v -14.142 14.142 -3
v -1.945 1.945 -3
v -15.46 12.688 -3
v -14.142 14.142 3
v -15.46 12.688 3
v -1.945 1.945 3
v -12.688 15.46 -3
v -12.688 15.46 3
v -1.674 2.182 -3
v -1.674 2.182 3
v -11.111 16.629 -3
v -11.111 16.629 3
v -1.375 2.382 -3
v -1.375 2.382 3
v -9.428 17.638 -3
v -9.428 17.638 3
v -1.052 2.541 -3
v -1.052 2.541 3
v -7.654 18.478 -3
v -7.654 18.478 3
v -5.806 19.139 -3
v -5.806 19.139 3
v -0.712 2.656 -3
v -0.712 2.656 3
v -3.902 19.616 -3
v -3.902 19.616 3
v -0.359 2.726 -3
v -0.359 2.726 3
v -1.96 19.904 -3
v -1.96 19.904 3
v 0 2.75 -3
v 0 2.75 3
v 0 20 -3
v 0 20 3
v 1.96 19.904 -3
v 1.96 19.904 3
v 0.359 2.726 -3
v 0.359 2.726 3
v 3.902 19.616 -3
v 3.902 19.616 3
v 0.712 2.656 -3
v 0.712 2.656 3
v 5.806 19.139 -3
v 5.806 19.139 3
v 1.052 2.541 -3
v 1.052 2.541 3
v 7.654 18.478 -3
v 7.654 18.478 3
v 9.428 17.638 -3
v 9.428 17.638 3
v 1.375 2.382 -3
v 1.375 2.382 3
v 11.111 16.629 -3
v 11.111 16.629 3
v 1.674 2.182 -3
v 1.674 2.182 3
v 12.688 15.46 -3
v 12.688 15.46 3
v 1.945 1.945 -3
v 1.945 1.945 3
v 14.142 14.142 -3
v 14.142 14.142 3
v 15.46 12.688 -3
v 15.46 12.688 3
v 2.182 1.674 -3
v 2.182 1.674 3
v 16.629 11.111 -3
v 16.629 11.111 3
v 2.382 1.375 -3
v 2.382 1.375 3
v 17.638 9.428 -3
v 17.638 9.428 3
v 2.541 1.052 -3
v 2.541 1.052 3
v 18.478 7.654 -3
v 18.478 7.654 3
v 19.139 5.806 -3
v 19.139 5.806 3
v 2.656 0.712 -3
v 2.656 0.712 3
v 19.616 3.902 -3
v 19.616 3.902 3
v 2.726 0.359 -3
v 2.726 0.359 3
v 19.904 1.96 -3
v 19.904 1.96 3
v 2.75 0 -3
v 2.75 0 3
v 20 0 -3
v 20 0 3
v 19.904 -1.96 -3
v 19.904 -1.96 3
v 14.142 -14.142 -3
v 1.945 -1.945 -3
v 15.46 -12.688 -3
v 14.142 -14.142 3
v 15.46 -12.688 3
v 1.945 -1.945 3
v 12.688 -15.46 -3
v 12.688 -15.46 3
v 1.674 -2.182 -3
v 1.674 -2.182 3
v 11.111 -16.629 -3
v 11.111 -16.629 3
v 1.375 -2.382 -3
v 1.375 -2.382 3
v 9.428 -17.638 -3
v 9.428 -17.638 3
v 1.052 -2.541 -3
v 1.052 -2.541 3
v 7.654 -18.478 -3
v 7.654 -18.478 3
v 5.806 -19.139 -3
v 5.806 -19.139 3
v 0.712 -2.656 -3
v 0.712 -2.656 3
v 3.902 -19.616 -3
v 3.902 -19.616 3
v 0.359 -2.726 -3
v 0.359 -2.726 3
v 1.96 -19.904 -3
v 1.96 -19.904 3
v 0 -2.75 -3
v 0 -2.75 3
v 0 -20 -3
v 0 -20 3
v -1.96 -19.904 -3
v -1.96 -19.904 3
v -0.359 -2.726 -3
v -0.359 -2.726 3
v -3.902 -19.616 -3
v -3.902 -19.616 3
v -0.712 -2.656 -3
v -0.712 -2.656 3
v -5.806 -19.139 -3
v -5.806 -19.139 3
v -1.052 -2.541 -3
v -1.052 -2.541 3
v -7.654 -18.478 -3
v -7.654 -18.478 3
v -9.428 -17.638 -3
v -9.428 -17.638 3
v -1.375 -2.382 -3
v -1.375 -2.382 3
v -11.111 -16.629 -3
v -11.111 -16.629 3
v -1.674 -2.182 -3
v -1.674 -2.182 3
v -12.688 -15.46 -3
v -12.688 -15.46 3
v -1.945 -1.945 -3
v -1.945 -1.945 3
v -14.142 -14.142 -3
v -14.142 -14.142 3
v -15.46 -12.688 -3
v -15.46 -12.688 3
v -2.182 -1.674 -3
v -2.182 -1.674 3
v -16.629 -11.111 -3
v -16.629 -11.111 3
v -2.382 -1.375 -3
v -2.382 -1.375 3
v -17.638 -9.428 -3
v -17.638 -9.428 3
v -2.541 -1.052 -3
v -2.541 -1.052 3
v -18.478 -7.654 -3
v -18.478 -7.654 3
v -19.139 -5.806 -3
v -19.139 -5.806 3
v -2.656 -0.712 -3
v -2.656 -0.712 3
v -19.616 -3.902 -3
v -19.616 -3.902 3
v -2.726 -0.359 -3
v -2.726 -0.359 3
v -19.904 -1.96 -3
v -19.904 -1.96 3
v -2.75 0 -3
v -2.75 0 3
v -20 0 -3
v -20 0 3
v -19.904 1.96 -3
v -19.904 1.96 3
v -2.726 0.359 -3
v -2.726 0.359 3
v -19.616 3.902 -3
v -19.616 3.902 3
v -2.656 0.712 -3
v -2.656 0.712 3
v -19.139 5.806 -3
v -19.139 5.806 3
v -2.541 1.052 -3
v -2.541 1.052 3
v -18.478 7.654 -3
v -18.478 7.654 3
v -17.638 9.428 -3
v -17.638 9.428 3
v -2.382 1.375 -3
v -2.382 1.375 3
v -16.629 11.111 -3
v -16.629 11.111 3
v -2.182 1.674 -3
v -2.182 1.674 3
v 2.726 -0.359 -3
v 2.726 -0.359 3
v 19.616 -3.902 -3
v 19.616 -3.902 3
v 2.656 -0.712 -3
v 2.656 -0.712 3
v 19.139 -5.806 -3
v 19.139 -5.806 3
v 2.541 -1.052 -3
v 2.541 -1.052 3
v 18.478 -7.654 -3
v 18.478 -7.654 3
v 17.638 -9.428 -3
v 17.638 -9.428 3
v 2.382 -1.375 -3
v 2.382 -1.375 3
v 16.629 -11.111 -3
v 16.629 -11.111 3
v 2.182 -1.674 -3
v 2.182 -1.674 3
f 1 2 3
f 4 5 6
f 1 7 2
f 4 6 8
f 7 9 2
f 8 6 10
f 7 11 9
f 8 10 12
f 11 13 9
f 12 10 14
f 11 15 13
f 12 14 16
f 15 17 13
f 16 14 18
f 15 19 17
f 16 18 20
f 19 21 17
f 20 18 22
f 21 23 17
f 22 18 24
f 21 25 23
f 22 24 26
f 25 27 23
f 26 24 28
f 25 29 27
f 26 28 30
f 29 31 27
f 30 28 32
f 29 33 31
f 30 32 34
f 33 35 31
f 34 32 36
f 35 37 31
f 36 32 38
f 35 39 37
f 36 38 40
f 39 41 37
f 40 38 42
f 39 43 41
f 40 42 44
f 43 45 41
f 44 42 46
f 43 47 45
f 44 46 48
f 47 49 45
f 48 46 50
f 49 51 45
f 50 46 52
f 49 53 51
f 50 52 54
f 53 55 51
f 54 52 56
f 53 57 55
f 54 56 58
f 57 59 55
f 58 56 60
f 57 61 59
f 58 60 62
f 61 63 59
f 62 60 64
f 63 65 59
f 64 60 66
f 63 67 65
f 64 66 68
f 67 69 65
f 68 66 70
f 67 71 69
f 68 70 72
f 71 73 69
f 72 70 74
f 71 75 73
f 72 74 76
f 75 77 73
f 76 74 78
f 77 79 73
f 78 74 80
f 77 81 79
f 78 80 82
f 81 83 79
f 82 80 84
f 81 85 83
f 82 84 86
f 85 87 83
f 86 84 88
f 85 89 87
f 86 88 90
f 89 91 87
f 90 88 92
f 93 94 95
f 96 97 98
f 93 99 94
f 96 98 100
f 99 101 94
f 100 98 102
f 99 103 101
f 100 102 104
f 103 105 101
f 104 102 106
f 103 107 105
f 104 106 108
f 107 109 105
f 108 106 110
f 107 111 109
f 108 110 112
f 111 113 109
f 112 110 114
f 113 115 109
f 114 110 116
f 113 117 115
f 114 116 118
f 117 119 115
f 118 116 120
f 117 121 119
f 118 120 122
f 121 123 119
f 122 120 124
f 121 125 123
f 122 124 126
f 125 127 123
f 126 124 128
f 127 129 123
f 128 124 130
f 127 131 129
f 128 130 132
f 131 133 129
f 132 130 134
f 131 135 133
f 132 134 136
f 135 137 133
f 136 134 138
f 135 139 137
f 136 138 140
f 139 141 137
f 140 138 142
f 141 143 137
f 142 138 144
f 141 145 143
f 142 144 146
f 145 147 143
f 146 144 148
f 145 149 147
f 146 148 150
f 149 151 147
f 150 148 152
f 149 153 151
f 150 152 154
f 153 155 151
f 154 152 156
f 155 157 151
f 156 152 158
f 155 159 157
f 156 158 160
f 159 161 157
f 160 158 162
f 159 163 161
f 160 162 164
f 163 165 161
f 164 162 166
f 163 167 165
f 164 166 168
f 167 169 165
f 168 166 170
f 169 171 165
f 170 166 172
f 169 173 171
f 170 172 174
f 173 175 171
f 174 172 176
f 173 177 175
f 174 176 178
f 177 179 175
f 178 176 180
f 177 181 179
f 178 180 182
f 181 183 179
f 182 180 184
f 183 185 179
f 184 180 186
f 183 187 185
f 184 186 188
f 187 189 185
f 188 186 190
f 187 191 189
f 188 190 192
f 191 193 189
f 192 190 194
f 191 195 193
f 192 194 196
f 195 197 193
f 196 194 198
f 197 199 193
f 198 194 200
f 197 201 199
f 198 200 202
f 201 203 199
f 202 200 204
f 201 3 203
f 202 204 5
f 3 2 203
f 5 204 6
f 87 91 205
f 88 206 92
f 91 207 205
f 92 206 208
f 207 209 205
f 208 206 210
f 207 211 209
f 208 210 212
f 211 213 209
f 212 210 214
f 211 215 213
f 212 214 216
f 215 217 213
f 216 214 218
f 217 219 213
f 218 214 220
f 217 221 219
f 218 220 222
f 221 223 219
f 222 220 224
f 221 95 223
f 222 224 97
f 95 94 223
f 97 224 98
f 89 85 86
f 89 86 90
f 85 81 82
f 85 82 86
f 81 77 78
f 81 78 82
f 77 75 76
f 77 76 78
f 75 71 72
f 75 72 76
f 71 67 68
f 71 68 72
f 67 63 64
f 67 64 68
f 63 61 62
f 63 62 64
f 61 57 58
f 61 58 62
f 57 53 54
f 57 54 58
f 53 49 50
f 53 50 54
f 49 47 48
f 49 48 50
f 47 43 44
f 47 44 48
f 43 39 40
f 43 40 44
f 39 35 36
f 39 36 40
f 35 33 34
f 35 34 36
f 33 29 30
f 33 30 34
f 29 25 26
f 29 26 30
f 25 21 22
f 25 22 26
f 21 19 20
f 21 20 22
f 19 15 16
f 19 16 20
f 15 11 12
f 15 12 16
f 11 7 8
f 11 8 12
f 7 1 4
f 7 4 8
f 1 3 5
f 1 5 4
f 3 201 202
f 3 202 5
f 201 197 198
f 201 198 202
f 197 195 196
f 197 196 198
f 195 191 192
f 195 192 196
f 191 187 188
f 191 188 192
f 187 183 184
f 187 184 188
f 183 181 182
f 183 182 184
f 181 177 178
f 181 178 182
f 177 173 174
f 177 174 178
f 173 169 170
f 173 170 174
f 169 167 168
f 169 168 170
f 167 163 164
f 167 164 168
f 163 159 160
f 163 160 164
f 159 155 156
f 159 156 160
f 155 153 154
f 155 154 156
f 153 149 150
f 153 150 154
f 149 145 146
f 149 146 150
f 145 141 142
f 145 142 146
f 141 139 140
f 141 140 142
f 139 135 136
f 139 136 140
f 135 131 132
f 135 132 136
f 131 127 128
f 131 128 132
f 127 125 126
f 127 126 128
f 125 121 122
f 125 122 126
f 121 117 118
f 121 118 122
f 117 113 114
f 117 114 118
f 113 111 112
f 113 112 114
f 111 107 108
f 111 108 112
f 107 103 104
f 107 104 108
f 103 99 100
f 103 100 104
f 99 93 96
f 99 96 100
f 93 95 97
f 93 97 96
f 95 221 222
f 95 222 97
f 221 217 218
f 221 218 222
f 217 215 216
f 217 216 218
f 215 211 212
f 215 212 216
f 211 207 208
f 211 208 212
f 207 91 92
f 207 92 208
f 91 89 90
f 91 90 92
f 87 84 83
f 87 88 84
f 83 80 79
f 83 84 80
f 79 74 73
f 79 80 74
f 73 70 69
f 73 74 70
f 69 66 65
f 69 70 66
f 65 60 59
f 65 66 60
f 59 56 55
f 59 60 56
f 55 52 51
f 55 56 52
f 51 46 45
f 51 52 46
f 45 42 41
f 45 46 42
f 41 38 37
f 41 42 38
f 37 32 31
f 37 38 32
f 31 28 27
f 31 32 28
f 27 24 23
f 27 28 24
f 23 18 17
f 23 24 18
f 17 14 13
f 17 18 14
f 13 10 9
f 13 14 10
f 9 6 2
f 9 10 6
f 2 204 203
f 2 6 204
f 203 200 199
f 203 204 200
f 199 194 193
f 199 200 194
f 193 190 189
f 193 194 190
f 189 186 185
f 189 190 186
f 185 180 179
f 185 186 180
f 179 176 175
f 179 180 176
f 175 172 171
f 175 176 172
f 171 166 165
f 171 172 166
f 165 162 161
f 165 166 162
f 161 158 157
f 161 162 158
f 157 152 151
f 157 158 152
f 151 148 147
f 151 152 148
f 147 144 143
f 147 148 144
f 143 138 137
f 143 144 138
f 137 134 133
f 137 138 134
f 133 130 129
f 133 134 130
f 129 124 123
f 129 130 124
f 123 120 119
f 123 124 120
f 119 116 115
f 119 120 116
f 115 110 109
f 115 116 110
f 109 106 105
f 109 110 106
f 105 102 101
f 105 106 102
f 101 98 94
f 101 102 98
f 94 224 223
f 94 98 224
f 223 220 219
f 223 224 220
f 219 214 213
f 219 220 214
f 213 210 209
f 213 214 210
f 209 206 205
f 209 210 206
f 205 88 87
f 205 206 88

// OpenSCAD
polyhedron(points=[[-14.142136, 14.142136, -3.0], [-15.460209, 12.687866, -3.0], [-1.944544, 1.944544, -3.0], [-14.142136, 14.142136, 3.0], [-15.460209, 12.687866, 3.0], [-1.944544, 1.944544, 3.0], [-12.687866, 15.460209, -3.0], [-12.687866, 15.460209, 3.0], [-1.674094, 2.181722, -3.0], [-1.674094, 2.181722, 3.0], [-11.111405, 16.629392, -3.0], [-11.111405, 16.629392, 3.0], [-1.375, 2.38157, -3.0], [-1.375, 2.38157, 3.0], [-9.427935, 17.638425, -3.0], [-9.427935, 17.638425, 3.0], [-1.052379, 2.540669, -3.0], [-1.052379, 2.540669, 3.0], [-7.653669, 18.477591, -3.0], [-7.653669, 18.477591, 3.0], [-5.805694, 19.138807, -3.0], [-5.805694, 19.138807, 3.0], [-0.711752, 2.656296, -3.0], [-0.711752, 2.656296, 3.0], [-3.901806, 19.615706, -3.0], [-3.901806, 19.615706, 3.0], [-0.358947, 2.726473, -3.0], [-0.358947, 2.726473, 3.0], [-1.960343, 19.903695, -3.0], [-1.960343, 19.903695, 3.0], [0.0, 2.75, -3.0], [0.0, 2.75, 3.0], [0.0, 20.0, -3.0], [0.0, 20.0, 3.0], [1.960343, 19.903695, -3.0], [1.960343, 19.903695, 3.0], [0.358947, 2.726473, -3.0], [0.358947, 2.726473, 3.0], [3.901806, 19.615706, -3.0], [3.901806, 19.615706, 3.0], [0.711752, 2.656296, -3.0], [0.711752, 2.656296, 3.0], [5.805694, 19.138807, -3.0], [5.805694, 19.138807, 3.0], [1.052379, 2.540669, -3.0], [1.052379, 2.540669, 3.0], [7.653669, 18.477591, -3.0], [7.653669, 18.477591, 3.0], [9.427935, 17.638425, -3.0], [9.427935, 17.638425, 3.0], [1.375, 2.38157, -3.0], [1.375, 2.38157, 3.0], [11.111405, 16.629392, -3.0], [11.111405, 16.629392, 3.0], [1.674094, 2.181722, -3.0], [1.674094, 2.181722, 3.0], [12.687866, 15.460209, -3.0], [12.687866, 15.460209, 3.0], [1.944544, 1.944544, -3.0], [1.944544, 1.944544, 3.0], [14.142136, 14.142136, -3.0], [14.142136, 14.142136, 3.0], [15.460209, 12.687866, -3.0], [15.460209, 12.687866, 3.0], [2.181722, 1.674094, -3.0], [2.181722, 1.674094, 3.0], [16.629392, 11.111405, -3.0], [16.629392, 11.111405, 3.0], [2.38157, 1.375, -3.0], [2.38157, 1.375, 3.0], [17.638425, 9.427935, -3.0], [17.638425, 9.427935, 3.0], [2.540669, 1.052379, -3.0], [2.540669, 1.052379, 3.0], [18.477591, 7.653669, -3.0], [18.477591, 7.653669, 3.0], [19.138807, 5.805694, -3.0], [19.138807, 5.805694, 3.0], [2.656296, 0.711752, -3.0], [2.656296, 0.711752, 3.0], [19.615706, 3.901806, -3.0], [19.615706, 3.901806, 3.0], [2.726473, 0.358947, -3.0], [2.726473, 0.358947, 3.0], [19.903695, 1.960343, -3.0], [19.903695, 1.960343, 3.0], [2.75, 0.0, -3.0], [2.75, 0.0, 3.0], [20.0, 0.0, -3.0], [20.0, 0.0, 3.0], [19.903695, -1.960343, -3.0], [19.903695, -1.960343, 3.0], [14.142136, -14.142136, -3.0], [15.460209, -12.687866, -3.0], [1.944544, -1.944544, -3.0], [14.142136, -14.142136, 3.0], [15.460209, -12.687866, 3.0], [1.944544, -1.944544, 3.0], [12.687866, -15.460209, -3.0], [12.687866, -15.460209, 3.0], [1.674094, -2.181722, -3.0], [1.674094, -2.181722, 3.0], [11.111405, -16.629392, -3.0], [11.111405, -16.629392, 3.0], [1.375, -2.38157, -3.0], [1.375, -2.38157, 3.0], [9.427935, -17.638425, -3.0], [9.427935, -17.638425, 3.0], [1.052379, -2.540669, -3.0], [1.052379, -2.540669, 3.0], [7.653669, -18.477591, -3.0], [7.653669, -18.477591, 3.0], [5.805694, -19.138807, -3.0], [5.805694, -19.138807, 3.0], [0.711752, -2.656296, -3.0], [0.711752, -2.656296, 3.0], [3.901806, -19.615706, -3.0], [3.901806, -19.615706, 3.0], [0.358947, -2.726473, -3.0], [0.358947, -2.726473, 3.0], [1.960343, -19.903695, -3.0], [1.960343, -19.903695, 3.0], [-0.0, -2.75, -3.0], [-0.0, -2.75, 3.0], [-0.0, -20.0, -3.0], [-0.0, -20.0, 3.0], [-1.960343, -19.903695, -3.0], [-1.960343, -19.903695, 3.0], [-0.358947, -2.726473, -3.0], [-0.358947, -2.726473, 3.0], [-3.901806, -19.615706, -3.0], [-3.901806, -19.615706, 3.0], [-0.711752, -2.656296, -3.0], [-0.711752, -2.656296, 3.0], [-5.805694, -19.138807, -3.0], [-5.805694, -19.138807, 3.0], [-1.052379, -2.540669, -3.0], [-1.052379, -2.540669, 3.0], [-7.653669, -18.477591, -3.0], [-7.653669, -18.477591, 3.0], [-9.427935, -17.638425, -3.0], [-9.427935, -17.638425, 3.0], [-1.375, -2.38157, -3.0], [-1.375, -2.38157, 3.0], [-11.111405, -16.629392, -3.0], [-11.111405, -16.629392, 3.0], [-1.674094, -2.181722, -3.0], [-1.674094, -2.181722, 3.0], [-12.687866, -15.460209, -3.0], [-12.687866, -15.460209, 3.0], [-1.944544, -1.944544, -3.0], [-1.944544, -1.944544, 3.0], [-14.142136, -14.142136, -3.0], [-14.142136, -14.142136, 3.0], [-15.460209, -12.687866, -3.0], [-15.460209, -12.687866, 3.0], [-2.181722, -1.674094, -3.0], [-2.181722, -1.674094, 3.0], [-16.629392, -11.111405, -3.0], [-16.629392, -11.111405, 3.0], [-2.38157, -1.375, -3.0], [-2.38157, -1.375, 3.0], [-17.638425, -9.427935, -3.0], [-17.638425, -9.427935, 3.0], [-2.540669, -1.052379, -3.0], [-2.540669, -1.052379, 3.0], [-18.477591, -7.653669, -3.0], [-18.477591, -7.653669, 3.0], [-19.138807, -5.805694, -3.0], [-19.138807, -5.805694, 3.0], [-2.656296, -0.711752, -3.0], [-2.656296, -0.711752, 3.0], [-19.615706, -3.901806, -3.0], [-19.615706, -3.901806, 3.0], [-2.726473, -0.358947, -3.0], [-2.726473, -0.358947, 3.0], [-19.903695, -1.960343, -3.0], [-19.903695, -1.960343, 3.0], [-2.75, 0.0, -3.0], [-2.75, 0.0, 3.0], [-20.0, 0.0, -3.0], [-20.0, 0.0, 3.0], [-19.903695, 1.960343, -3.0], [-19.903695, 1.960343, 3.0], [-2.726473, 0.358947, -3.0], [-2.726473, 0.358947, 3.0], [-19.615706, 3.901806, -3.0], [-19.615706, 3.901806, 3.0], [-2.656296, 0.711752, -3.0], [-2.656296, 0.711752, 3.0], [-19.138807, 5.805694, -3.0], [-19.138807, 5.805694, 3.0], [-2.540669, 1.052379, -3.0], [-2.540669, 1.052379, 3.0], [-18.477591, 7.653669, -3.0], [-18.477591, 7.653669, 3.0], [-17.638425, 9.427935, -3.0], [-17.638425, 9.427935, 3.0], [-2.38157, 1.375, -3.0], [-2.38157, 1.375, 3.0], [-16.629392, 11.111405, -3.0], [-16.629392, 11.111405, 3.0], [-2.181722, 1.674094, -3.0], [-2.181722, 1.674094, 3.0], [2.726473, -0.358947, -3.0], [2.726473, -0.358947, 3.0], [19.615706, -3.901806, -3.0], [19.615706, -3.901806, 3.0], [2.656296, -0.711752, -3.0], [2.656296, -0.711752, 3.0], [19.138807, -5.805694, -3.0], [19.138807, -5.805694, 3.0], [2.540669, -1.052379, -3.0], [2.540669, -1.052379, 3.0], [18.477591, -7.653669, -3.0], [18.477591, -7.653669, 3.0], [17.638425, -9.427935, -3.0], [17.638425, -9.427935, 3.0], [2.38157, -1.375, -3.0], [2.38157, -1.375, 3.0], [16.629392, -11.111405, -3.0], [16.629392, -11.111405, 3.0], [2.181722, -1.674094, -3.0], [2.181722, -1.674094, 3.0]], faces=[[0, 2, 1], [3, 4, 5], [0, 6, 2], [3, 5, 7], [6, 8, 2], [7, 5, 9], [6, 10, 8], [7, 9, 11], [10, 12, 8], [11, 9, 13], [10, 14, 12], [11, 13, 15], [14, 16, 12], [15, 13, 17], [14, 18, 16], [15, 17, 19], [18, 20, 16], [19, 17, 21], [20, 22, 16], [21, 17, 23], [20, 24, 22], [21, 23, 25], [24, 26, 22], [25, 23, 27], [24, 28, 26], [25, 27, 29], [28, 30, 26], [29, 27, 31], [28, 32, 30], [29, 31, 33], [32, 34, 30], [33, 31, 35], [34, 36, 30], [35, 31, 37], [34, 38, 36], [35, 37, 39], [38, 40, 36], [39, 37, 41], [38, 42, 40], [39, 41, 43], [42, 44, 40], [43, 41, 45], [42, 46, 44], [43, 45, 47], [46, 48, 44], [47, 45, 49], [48, 50, 44], [49, 45, 51], [48, 52, 50], [49, 51, 53], [52, 54, 50], [53, 51, 55], [52, 56, 54], [53, 55, 57], [56, 58, 54], [57, 55, 59], [56, 60, 58], [57, 59, 61], [60, 62, 58], [61, 59, 63], [62, 64, 58], [63, 59, 65], [62, 66, 64], [63, 65, 67], [66, 68, 64], [67, 65, 69], [66, 70, 68], [67, 69, 71], [70, 72, 68], [71, 69, 73], [70, 74, 72], [71, 73, 75], [74, 76, 72], [75, 73, 77], [76, 78, 72], [77, 73, 79], [76, 80, 78], [77, 79, 81], [80, 82, 78], [81, 79, 83], [80, 84, 82], [81, 83, 85], [84, 86, 82], [85, 83, 87], [84, 88, 86], [85, 87, 89], [88, 90, 86], [89, 87, 91], [92, 94, 93], [95, 96, 97], [92, 98, 94], [95, 97, 99], [98, 100, 94], [99, 97, 101], [98, 102, 100], [99, 101, 103], [102, 104, 100], [103, 101, 105], [102, 106, 104], [103, 105, 107], [106, 108, 104], [107, 105, 109], [106, 110, 108], [107, 109, 111], [110, 112, 108], [111, 109, 113], [112, 114, 108], [113, 109, 115], [112, 116, 114], [113, 115, 117], [116, 118, 114], [117, 115, 119], [116, 120, 118], [117, 119, 121], [120, 122, 118], [121, 119, 123], [120, 124, 122], [121, 123, 125], [124, 126, 122], [125, 123, 127], [126, 128, 122], [127, 123, 129], [126, 130, 128], [127, 129, 131], [130, 132, 128], [131, 129, 133], [130, 134, 132], [131, 133, 135], [134, 136, 132], [135, 133, 137], [134, 138, 136], [135, 137, 139], [138, 140, 136], [139, 137, 141], [140, 142, 136], [141, 137, 143], [140, 144, 142], [141, 143, 145], [144, 146, 142], [145, 143, 147], [144, 148, 146], [145, 147, 149], [148, 150, 146], [149, 147, 151], [148, 152, 150], [149, 151, 153], [152, 154, 150], [153, 151, 155], [154, 156, 150], [155, 151, 157], [154, 158, 156], [155, 157, 159], [158, 160, 156], [159, 157, 161], [158, 162, 160], [159, 161, 163], [162, 164, 160], [163, 161, 165], [162, 166, 164], [163, 165, 167], [166, 168, 164], [167, 165, 169], [168, 170, 164], [169, 165, 171], [168, 172, 170], [169, 171, 173], [172, 174, 170], [173, 171, 175], [172, 176, 174], [173, 175, 177], [176, 178, 174], [177, 175, 179], [176, 180, 178], [177, 179, 181], [180, 182, 178], [181, 179, 183], [182, 184, 178], [183, 179, 185], [182, 186, 184], [183, 185, 187], [186, 188, 184], [187, 185, 189], [186, 190, 188], [187, 189, 191], [190, 192, 188], [191, 189, 193], [190, 194, 192], [191, 193, 195], [194, 196, 192], [195, 193, 197], [196, 198, 192], [197, 193, 199], [196, 200, 198], [197, 199, 201], [200, 202, 198], [201, 199, 203], [200, 1, 202], [201, 203, 4], [1, 2, 202], [4, 203, 5], [86, 90, 204], [87, 205, 91], [90, 206, 204], [91, 205, 207], [206, 208, 204], [207, 205, 209], [206, 210, 208], [207, 209, 211], [210, 212, 208], [211, 209, 213], [210, 214, 212], [211, 213, 215], [214, 216, 212], [215, 213, 217], [216, 218, 212], [217, 213, 219], [216, 220, 218], [217, 219, 221], [220, 222, 218], [221, 219, 223], [220, 93, 222], [221, 223, 96], [93, 94, 222], [96, 223, 97], [88, 84, 85], [88, 85, 89], [84, 80, 81], [84, 81, 85], [80, 76, 77], [80, 77, 81], [76, 74, 75], [76, 75, 77], [74, 70, 71], [74, 71, 75], [70, 66, 67], [70, 67, 71], [66, 62, 63], [66, 63, 67], [62, 60, 61], [62, 61, 63], [60, 56, 57], [60, 57, 61], [56, 52, 53], [56, 53, 57], [52, 48, 49], [52, 49, 53], [48, 46, 47], [48, 47, 49], [46, 42, 43], [46, 43, 47], [42, 38, 39], [42, 39, 43], [38, 34, 35], [38, 35, 39], [34, 32, 33], [34, 33, 35], [32, 28, 29], [32, 29, 33], [28, 24, 25], [28, 25, 29], [24, 20, 21], [24, 21, 25], [20, 18, 19], [20, 19, 21], [18, 14, 15], [18, 15, 19], [14, 10, 11], [14, 11, 15], [10, 6, 7], [10, 7, 11], [6, 0, 3], [6, 3, 7], [0, 1, 4], [0, 4, 3], [1, 200, 201], [1, 201, 4], [200, 196, 197], [200, 197, 201], [196, 194, 195], [196, 195, 197], [194, 190, 191], [194, 191, 195], [190, 186, 187], [190, 187, 191], [186, 182, 183], [186, 183, 187], [182, 180, 181], [182, 181, 183], [180, 176, 177], [180, 177, 181], [176, 172, 173], [176, 173, 177], [172, 168, 169], [172, 169, 173], [168, 166, 167], [168, 167, 169], [166, 162, 163], [166, 163, 167], [162, 158, 159], [162, 159, 163], [158, 154, 155], [158, 155, 159], [154, 152, 153], [154, 153, 155], [152, 148, 149], [152, 149, 153], [148, 144, 145], [148, 145, 149], [144, 140, 141], [144, 141, 145], [140, 138, 139], [140, 139, 141], [138, 134, 135], [138, 135, 139], [134, 130, 131], [134, 131, 135], [130, 126, 127], [130, 127, 131], [126, 124, 125], [126, 125, 127], [124, 120, 121], [124, 121, 125], [120, 116, 117], [120, 117, 121], [116, 112, 113], [116, 113, 117], [112, 110, 111], [112, 111, 113], [110, 106, 107], [110, 107, 111], [106, 102, 103], [106, 103, 107], [102, 98, 99], [102, 99, 103], [98, 92, 95], [98, 95, 99], [92, 93, 96], [92, 96, 95], [93, 220, 221], [93, 221, 96], [220, 216, 217], [220, 217, 221], [216, 214, 215], [216, 215, 217], [214, 210, 211], [214, 211, 215], [210, 206, 207], [210, 207, 211], [206, 90, 91], [206, 91, 207], [90, 88, 89], [90, 89, 91], [86, 83, 82], [86, 87, 83], [82, 79, 78], [82, 83, 79], [78, 73, 72], [78, 79, 73], [72, 69, 68], [72, 73, 69], [68, 65, 64], [68, 69, 65], [64, 59, 58], [64, 65, 59], [58, 55, 54], [58, 59, 55], [54, 51, 50], [54, 55, 51], [50, 45, 44], [50, 51, 45], [44, 41, 40], [44, 45, 41], [40, 37, 36], [40, 41, 37], [36, 31, 30], [36, 37, 31], [30, 27, 26], [30, 31, 27], [26, 23, 22], [26, 27, 23], [22, 17, 16], [22, 23, 17], [16, 13, 12], [16, 17, 13], [12, 9, 8], [12, 13, 9], [8, 5, 2], [8, 9, 5], [2, 203, 202], [2, 5, 203], [202, 199, 198], [202, 203, 199], [198, 193, 192], [198, 199, 193], [192, 189, 188], [192, 193, 189], [188, 185, 184], [188, 189, 185], [184, 179, 178], [184, 185, 179], [178, 175, 174], [178, 179, 175], [174, 171, 170], [174, 175, 171], [170, 165, 164], [170, 171, 165], [164, 161, 160], [164, 165, 161], [160, 157, 156], [160, 161, 157], [156, 151, 150], [156, 157, 151], [150, 147, 146], [150, 151, 147], [146, 143, 142], [146, 147, 143], [142, 137, 136], [142, 143, 137], [136, 133, 132], [136, 137, 133], [132, 129, 128], [132, 133, 129], [128, 123, 122], [128, 129, 123], [122, 119, 118], [122, 123, 119], [118, 115, 114], [118, 119, 115], [114, 109, 108], [114, 115, 109], [108, 105, 104], [108, 109, 105], [104, 101, 100], [104, 105, 101], [100, 97, 94], [100, 101, 97], [94, 223, 222], [94, 97, 223], [222, 219, 218], [222, 223, 219], [218, 213, 212], [218, 219, 213], [212, 209, 208], [212, 213, 209], [208, 205, 204], [208, 209, 205], [204, 87, 86], [204, 205, 87]], convexity=20);
